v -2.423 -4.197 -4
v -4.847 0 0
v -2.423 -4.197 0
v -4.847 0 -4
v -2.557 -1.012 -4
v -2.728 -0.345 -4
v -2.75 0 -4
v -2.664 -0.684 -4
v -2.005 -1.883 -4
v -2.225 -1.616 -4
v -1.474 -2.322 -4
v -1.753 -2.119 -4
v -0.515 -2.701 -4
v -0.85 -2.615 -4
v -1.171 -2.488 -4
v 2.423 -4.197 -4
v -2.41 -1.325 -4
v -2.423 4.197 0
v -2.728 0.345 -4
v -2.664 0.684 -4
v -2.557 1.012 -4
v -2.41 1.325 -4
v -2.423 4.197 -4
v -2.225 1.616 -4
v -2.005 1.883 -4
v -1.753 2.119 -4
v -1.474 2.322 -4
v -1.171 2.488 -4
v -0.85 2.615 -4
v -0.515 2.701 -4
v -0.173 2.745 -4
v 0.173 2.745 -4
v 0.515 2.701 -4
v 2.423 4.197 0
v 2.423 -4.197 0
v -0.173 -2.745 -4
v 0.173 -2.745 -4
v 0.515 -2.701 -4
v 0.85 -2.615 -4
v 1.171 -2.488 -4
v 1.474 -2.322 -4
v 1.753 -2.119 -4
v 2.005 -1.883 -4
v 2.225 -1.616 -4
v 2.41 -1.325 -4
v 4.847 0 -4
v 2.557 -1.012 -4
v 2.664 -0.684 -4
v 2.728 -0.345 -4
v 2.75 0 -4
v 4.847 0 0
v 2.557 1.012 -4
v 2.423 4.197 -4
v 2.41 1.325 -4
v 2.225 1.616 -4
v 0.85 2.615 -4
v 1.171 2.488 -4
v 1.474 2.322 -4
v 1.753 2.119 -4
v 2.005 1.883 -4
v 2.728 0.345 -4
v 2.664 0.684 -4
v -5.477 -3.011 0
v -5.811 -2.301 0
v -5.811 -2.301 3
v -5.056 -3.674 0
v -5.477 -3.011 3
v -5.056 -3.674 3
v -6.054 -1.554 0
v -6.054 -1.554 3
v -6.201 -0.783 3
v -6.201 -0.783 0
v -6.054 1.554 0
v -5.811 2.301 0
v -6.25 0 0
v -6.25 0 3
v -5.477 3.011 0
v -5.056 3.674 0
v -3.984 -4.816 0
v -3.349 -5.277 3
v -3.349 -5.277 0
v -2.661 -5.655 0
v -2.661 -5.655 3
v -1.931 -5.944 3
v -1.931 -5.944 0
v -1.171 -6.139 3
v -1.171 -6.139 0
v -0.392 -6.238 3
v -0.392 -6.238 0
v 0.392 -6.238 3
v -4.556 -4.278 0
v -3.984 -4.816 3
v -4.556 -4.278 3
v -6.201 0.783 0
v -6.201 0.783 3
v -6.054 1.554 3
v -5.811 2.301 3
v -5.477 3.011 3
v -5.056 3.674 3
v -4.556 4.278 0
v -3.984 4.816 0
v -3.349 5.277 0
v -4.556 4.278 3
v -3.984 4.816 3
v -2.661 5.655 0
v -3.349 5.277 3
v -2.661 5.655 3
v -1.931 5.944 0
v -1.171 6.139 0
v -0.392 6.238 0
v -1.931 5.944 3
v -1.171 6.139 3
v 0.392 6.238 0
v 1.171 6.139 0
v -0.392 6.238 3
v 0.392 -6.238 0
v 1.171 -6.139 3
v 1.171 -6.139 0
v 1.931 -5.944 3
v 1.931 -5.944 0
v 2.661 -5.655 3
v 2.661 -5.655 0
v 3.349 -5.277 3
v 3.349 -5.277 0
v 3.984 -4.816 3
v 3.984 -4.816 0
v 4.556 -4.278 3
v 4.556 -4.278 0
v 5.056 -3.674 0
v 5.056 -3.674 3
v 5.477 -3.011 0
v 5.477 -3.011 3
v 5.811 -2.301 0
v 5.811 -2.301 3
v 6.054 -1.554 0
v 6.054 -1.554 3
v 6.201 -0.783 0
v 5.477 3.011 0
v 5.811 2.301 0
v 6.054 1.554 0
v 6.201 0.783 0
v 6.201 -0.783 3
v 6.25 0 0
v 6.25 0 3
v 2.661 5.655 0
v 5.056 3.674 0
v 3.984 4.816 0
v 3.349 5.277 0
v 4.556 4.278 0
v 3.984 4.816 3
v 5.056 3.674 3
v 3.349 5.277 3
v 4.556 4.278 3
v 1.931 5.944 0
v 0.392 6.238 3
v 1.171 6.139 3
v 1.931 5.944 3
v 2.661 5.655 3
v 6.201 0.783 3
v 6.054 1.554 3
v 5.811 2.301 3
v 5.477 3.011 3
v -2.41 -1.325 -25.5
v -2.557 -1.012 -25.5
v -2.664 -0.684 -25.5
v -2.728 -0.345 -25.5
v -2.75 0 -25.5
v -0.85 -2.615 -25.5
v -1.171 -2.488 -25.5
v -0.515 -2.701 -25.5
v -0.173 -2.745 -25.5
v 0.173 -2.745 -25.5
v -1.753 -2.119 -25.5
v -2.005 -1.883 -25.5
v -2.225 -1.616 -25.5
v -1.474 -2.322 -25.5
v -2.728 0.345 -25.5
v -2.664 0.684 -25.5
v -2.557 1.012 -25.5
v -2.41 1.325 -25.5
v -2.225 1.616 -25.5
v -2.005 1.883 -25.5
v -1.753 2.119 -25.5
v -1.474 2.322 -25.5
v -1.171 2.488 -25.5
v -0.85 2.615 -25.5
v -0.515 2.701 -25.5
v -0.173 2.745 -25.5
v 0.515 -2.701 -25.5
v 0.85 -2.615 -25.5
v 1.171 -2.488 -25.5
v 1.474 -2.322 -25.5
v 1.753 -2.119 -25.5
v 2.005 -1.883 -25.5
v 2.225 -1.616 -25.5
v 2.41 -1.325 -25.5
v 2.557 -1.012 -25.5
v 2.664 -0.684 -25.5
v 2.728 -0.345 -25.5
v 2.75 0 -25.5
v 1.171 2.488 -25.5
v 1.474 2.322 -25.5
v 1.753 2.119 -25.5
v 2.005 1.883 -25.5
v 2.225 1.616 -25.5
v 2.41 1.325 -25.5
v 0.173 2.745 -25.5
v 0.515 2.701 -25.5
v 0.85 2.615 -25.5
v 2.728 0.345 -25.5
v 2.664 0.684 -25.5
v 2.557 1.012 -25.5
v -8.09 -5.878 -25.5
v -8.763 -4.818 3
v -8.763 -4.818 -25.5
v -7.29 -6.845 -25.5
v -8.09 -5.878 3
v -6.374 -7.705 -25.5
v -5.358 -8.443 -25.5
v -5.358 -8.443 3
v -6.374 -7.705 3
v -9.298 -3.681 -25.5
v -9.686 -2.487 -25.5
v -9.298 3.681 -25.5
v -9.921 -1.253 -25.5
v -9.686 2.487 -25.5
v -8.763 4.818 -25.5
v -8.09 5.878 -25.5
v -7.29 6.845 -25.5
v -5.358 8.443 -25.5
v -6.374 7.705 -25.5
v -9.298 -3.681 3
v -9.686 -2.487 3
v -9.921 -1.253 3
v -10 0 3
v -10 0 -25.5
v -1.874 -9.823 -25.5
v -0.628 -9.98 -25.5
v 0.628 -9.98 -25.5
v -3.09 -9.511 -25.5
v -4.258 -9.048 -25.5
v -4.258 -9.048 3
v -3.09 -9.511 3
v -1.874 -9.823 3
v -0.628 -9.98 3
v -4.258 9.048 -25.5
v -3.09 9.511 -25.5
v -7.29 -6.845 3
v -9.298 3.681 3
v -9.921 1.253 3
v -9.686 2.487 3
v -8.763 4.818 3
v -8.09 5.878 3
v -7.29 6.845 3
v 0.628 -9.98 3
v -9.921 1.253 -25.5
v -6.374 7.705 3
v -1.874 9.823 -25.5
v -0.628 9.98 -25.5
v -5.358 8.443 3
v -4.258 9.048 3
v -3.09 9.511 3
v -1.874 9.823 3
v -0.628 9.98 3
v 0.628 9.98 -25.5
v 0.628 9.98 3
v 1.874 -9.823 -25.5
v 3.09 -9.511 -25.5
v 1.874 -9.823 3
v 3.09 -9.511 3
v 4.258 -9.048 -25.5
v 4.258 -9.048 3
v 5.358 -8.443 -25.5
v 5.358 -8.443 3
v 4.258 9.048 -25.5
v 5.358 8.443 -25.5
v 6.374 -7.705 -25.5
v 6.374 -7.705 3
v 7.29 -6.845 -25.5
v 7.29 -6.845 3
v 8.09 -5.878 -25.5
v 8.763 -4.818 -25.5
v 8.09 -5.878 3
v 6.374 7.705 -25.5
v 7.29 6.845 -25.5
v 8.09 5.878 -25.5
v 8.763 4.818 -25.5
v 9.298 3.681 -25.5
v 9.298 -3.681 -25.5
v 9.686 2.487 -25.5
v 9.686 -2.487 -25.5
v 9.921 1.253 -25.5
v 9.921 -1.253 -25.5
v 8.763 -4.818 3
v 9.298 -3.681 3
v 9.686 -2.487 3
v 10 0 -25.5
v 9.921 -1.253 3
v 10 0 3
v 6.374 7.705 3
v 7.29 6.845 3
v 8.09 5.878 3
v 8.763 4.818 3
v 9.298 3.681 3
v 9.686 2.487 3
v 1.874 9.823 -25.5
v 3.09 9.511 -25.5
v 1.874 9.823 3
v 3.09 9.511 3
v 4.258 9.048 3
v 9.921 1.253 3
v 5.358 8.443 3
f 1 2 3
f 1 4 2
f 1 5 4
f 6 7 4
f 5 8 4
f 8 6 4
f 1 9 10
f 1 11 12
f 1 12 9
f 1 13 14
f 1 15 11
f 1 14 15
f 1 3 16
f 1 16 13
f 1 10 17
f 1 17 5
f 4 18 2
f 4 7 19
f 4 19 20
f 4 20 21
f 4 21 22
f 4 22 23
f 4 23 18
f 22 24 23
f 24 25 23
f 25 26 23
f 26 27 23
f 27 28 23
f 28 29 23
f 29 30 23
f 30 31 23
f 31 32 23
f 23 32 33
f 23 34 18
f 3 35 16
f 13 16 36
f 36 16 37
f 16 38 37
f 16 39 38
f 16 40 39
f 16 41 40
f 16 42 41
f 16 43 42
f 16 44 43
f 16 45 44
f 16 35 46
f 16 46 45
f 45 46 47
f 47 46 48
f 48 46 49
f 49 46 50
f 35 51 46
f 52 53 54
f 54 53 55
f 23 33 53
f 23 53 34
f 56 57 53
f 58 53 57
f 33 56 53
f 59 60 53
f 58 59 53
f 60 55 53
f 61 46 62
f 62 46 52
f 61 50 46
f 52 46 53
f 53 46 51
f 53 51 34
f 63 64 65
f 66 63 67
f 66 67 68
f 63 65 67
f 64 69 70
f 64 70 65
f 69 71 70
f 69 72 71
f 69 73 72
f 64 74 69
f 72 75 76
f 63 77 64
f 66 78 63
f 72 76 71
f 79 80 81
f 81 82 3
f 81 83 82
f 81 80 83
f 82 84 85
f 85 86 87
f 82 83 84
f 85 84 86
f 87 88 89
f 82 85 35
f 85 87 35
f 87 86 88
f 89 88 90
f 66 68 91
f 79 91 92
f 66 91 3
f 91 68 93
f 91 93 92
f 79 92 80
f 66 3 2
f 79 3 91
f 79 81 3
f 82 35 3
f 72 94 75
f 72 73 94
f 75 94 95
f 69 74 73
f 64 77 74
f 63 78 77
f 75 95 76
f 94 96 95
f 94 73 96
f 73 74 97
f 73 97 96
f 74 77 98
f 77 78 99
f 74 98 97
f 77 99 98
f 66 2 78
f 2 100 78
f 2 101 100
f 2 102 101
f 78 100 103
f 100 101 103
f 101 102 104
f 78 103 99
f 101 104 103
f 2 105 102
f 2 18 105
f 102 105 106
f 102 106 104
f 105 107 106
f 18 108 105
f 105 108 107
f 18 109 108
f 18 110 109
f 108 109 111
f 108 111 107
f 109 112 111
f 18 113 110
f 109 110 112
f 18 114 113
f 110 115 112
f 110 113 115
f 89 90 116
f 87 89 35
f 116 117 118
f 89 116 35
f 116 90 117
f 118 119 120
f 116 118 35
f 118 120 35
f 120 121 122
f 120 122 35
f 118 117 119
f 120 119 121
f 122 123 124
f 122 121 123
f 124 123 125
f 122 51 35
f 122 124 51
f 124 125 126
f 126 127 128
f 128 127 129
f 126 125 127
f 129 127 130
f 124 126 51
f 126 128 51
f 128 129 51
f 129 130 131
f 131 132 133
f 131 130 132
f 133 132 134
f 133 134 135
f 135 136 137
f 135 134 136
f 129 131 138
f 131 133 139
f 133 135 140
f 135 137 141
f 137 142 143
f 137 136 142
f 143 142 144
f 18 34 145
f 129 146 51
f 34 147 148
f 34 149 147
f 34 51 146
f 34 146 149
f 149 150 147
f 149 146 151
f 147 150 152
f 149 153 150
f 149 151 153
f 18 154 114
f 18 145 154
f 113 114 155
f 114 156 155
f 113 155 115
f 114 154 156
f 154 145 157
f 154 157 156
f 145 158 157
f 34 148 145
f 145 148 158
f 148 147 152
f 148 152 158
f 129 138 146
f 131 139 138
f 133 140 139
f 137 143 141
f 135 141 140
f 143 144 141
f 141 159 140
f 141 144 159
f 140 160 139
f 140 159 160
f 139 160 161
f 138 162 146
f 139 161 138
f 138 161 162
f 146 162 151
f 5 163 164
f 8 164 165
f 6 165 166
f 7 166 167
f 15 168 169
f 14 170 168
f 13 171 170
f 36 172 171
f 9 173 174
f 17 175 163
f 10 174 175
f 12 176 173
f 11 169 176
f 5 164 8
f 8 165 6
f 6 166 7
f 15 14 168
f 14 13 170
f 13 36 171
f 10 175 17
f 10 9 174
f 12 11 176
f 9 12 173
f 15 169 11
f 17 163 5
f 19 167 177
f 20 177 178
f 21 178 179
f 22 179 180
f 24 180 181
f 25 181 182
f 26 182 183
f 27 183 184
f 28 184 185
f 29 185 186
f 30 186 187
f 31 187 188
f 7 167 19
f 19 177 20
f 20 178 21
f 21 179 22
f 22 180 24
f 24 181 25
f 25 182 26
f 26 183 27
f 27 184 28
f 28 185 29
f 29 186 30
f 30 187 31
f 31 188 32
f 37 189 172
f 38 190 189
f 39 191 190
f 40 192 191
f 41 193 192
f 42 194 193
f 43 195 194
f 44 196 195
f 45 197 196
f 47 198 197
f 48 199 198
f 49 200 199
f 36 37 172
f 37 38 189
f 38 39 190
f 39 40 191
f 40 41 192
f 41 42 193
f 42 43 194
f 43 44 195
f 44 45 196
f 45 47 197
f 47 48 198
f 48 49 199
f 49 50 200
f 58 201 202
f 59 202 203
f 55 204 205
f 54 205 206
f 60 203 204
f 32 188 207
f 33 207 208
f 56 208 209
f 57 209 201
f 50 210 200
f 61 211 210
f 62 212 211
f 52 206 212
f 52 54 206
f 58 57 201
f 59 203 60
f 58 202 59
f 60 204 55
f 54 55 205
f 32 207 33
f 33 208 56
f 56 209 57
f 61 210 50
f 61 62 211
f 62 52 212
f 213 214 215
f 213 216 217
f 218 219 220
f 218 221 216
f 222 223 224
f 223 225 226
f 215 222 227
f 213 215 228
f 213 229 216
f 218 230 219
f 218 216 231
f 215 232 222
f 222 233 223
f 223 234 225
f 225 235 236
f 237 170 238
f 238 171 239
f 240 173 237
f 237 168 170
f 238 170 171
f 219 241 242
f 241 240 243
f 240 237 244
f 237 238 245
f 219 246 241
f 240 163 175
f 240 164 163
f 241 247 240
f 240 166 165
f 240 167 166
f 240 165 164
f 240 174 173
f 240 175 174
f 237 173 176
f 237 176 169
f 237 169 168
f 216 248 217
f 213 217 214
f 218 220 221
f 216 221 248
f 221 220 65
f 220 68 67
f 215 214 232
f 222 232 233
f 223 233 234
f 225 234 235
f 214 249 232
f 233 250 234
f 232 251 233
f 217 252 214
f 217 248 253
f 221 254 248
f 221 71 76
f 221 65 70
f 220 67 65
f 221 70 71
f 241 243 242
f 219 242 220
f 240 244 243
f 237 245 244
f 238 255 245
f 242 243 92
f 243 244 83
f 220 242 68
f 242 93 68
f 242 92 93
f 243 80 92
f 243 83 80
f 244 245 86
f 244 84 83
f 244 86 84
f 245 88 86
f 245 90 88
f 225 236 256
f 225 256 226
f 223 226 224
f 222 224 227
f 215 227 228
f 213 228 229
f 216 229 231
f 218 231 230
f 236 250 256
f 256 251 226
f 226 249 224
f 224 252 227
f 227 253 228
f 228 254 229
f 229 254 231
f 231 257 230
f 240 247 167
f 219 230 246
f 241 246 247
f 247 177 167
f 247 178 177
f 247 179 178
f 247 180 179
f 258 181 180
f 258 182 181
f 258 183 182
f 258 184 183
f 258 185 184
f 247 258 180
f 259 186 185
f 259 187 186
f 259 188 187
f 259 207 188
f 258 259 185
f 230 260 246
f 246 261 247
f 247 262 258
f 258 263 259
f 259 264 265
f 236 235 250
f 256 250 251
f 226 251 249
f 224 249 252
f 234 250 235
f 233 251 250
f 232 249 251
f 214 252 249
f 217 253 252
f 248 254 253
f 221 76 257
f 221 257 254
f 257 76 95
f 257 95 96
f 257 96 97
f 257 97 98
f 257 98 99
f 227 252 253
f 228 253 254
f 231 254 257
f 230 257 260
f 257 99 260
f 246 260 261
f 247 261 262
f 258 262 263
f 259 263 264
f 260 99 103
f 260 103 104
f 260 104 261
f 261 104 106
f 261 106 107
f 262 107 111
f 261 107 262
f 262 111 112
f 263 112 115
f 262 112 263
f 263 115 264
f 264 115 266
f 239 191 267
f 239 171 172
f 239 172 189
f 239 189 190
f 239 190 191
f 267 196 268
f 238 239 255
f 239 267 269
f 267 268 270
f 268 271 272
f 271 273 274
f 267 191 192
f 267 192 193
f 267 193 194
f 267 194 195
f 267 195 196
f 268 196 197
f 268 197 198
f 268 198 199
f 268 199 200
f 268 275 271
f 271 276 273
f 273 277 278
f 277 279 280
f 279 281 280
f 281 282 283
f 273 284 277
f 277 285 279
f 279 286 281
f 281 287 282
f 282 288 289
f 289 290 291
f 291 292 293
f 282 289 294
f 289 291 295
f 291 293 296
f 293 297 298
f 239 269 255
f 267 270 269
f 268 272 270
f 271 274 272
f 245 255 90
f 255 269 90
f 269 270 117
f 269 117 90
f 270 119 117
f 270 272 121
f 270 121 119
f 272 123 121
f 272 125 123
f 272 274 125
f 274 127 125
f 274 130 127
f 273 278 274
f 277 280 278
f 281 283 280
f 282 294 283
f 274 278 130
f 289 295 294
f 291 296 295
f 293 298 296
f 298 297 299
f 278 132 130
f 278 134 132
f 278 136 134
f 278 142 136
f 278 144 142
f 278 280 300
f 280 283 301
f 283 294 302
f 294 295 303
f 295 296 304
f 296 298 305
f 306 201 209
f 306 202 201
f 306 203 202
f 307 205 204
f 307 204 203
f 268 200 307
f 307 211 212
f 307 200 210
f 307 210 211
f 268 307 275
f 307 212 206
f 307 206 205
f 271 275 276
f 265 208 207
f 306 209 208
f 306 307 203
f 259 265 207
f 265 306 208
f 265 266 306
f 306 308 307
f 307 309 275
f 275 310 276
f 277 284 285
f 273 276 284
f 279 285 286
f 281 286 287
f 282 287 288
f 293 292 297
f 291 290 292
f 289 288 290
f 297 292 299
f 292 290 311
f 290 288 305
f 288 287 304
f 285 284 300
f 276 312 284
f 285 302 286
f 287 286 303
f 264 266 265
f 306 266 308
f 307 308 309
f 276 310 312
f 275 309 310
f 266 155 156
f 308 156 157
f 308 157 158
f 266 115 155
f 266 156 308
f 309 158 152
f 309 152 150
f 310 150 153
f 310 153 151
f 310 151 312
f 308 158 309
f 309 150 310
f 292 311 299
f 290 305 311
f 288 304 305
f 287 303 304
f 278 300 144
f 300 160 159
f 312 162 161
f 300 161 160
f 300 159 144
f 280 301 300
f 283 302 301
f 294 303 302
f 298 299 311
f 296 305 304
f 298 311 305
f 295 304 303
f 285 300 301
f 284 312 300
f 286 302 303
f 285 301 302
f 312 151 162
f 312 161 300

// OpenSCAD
$fn = 50;

difference() {
	union() {
		translate(v = [0, 0, -25.5]) {
			cylinder(h = 28.5, r = 10.0);
		}
	}
	union() {
		translate(v = [0, 0, 0]) {
			rotate(a = [0, 0, 0]) {
				difference() {
					union() {
						translate(v = [0, 0, -4]) {
							linear_extrude(height = 4) {
								polygon(points = [[4.8468, 0.0], [2.4234000000000004, 4.197451927062417], [-2.423399999999999, 4.197451927062417], [-4.8468, 5.935618106107392e-16], [-2.423400000000002, -4.197451927062416], [2.423399999999997, -4.197451927062419]]);
							}
						}
					}
					union();
				}
			}
		}
		#cylinder(h = 3, r = 6.25);
		#translate(v = [0, 0, -100.0]) {
			cylinder(h = 200, r = 2.75);
		}
	}
}
